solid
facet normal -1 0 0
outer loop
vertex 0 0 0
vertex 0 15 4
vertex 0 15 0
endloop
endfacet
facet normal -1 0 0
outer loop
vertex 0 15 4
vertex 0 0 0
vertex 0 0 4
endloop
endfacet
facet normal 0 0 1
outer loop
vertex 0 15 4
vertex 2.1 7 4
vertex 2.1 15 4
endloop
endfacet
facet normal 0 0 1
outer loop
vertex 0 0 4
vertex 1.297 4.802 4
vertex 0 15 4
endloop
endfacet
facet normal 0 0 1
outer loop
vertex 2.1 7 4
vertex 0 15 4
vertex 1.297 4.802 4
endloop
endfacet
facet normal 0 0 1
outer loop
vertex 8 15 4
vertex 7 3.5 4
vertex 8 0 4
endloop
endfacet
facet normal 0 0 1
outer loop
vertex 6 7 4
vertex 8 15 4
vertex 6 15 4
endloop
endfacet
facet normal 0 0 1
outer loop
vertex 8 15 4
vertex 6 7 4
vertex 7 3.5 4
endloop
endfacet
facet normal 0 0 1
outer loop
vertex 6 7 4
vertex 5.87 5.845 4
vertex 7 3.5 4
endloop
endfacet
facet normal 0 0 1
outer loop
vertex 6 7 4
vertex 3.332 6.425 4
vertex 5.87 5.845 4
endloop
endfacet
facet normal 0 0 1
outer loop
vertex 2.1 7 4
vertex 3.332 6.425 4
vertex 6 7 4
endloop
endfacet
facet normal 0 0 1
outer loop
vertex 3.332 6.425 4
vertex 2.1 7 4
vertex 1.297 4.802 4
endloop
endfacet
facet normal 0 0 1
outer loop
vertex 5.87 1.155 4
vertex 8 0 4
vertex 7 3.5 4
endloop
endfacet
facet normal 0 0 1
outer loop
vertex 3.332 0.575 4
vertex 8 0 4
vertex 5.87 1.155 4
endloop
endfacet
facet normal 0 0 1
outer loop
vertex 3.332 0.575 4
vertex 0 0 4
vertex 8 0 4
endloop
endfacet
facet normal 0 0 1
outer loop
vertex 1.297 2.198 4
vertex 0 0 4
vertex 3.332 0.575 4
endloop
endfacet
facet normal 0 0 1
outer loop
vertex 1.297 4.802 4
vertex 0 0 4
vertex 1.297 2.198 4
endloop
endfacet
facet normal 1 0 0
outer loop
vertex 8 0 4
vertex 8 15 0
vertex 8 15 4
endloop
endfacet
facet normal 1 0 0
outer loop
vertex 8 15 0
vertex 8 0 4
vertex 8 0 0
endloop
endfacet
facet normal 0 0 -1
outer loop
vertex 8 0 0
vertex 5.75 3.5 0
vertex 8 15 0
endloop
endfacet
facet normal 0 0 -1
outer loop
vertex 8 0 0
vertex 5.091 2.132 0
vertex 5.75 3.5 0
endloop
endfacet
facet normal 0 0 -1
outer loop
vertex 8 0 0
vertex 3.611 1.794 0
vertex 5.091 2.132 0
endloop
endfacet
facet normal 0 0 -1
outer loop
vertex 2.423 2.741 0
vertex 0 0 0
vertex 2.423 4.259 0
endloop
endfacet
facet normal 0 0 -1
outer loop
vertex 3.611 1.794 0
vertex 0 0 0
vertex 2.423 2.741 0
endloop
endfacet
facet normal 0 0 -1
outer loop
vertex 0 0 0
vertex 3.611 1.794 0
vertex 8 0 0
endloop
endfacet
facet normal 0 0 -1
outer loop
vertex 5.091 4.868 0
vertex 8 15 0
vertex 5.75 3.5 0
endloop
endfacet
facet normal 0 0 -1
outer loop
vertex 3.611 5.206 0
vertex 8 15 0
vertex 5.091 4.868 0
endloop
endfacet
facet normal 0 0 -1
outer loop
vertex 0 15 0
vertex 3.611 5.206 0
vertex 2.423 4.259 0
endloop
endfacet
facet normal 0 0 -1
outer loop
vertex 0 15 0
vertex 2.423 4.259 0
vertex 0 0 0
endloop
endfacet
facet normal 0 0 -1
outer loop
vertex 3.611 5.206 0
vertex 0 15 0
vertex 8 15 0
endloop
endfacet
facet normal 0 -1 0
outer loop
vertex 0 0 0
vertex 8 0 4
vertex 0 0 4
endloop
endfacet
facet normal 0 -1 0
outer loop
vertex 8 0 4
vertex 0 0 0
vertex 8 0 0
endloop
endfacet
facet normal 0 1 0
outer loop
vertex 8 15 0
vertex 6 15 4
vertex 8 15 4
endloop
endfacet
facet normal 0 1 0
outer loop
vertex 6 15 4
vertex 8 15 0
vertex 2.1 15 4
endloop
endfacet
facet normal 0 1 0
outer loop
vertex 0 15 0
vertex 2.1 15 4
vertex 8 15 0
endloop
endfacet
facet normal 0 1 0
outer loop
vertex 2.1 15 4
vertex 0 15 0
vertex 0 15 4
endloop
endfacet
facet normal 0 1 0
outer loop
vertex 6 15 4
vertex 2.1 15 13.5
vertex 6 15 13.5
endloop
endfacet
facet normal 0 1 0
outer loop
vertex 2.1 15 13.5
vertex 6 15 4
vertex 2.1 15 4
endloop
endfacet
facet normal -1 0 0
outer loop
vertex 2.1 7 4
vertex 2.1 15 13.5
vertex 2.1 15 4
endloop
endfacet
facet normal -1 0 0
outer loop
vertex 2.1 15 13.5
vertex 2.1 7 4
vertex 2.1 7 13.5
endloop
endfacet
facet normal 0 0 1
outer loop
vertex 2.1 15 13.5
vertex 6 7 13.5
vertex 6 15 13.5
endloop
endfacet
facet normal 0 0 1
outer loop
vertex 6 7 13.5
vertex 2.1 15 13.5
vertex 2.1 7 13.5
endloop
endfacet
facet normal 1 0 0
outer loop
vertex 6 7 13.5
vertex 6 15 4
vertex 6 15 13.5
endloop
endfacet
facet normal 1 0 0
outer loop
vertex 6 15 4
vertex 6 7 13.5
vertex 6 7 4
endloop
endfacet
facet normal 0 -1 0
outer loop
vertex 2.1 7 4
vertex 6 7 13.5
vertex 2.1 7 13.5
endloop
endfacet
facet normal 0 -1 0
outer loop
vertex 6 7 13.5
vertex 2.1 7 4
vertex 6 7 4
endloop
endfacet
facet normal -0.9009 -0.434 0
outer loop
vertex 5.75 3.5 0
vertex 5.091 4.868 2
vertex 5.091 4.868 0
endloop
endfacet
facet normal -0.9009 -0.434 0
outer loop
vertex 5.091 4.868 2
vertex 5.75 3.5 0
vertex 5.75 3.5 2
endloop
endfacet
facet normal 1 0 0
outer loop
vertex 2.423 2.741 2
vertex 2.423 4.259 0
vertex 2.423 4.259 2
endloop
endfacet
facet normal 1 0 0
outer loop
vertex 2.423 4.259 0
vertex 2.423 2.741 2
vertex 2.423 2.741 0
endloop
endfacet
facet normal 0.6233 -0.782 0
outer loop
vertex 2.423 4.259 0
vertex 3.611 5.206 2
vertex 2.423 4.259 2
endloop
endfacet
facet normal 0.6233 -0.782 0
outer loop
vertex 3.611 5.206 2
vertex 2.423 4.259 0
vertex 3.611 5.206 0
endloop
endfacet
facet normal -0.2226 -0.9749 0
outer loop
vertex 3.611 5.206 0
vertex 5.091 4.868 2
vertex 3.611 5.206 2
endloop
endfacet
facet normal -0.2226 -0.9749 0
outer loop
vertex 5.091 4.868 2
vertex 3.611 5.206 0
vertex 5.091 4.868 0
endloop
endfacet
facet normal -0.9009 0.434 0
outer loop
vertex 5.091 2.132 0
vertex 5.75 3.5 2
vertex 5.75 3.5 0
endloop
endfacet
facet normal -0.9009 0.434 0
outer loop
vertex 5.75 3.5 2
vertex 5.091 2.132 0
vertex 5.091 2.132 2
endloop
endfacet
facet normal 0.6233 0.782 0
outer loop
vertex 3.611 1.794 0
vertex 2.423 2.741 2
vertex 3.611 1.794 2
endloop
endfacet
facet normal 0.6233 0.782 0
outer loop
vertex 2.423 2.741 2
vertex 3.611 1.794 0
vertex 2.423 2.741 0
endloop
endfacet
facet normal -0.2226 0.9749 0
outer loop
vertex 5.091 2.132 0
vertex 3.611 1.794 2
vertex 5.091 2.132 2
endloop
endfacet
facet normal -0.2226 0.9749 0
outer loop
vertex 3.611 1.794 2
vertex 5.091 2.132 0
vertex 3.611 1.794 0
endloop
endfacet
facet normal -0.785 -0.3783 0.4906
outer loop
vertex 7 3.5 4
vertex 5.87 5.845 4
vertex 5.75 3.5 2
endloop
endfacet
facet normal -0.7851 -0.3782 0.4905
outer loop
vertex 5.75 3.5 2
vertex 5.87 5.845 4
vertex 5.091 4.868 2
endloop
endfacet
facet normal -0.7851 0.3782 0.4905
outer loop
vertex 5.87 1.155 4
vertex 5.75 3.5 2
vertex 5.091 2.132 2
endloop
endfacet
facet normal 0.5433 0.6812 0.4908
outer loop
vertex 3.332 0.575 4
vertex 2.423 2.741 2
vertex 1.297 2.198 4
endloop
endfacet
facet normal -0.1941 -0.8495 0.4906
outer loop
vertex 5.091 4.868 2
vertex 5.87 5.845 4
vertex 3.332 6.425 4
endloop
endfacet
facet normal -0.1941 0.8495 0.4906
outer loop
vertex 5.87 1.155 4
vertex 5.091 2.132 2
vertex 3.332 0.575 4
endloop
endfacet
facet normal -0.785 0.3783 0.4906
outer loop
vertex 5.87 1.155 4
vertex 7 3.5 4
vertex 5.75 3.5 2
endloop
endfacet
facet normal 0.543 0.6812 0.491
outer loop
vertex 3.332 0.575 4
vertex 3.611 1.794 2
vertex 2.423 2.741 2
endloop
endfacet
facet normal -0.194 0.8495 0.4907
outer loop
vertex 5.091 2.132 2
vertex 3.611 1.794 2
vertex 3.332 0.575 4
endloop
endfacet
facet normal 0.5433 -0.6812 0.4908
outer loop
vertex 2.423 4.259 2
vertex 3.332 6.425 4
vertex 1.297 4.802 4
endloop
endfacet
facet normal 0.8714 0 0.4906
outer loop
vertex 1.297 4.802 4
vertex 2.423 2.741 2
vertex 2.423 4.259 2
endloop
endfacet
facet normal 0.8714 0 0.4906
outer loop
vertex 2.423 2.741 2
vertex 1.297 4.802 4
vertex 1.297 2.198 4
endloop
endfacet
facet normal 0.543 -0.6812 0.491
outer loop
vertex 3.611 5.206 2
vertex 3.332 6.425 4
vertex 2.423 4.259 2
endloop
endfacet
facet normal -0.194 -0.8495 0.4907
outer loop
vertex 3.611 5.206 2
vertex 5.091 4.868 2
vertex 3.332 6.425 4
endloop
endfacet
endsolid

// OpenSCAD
baseW = 8;
baseH = 4;
baseL = 7;
indentW = 5.9;
riserW = 3.9;
totalH = 13.5;
totalL = 15;
holeD = 3.5;
chamferH = 2;
chamferD = 6;

module hole() {
    union(){
        cylinder(r=holeD/2,h=baseH,$fn=2*holeD);
        translate([0,0,baseH-chamferH]){
            cylinder(r1=holeD/2,r2=chamferD/2,h=chamferH,$fn=2*holeD);
        }
    }
}

module stopper() {
    union(){
        cube([baseW,totalL,baseH]);
        translate([baseW-indentW,baseL,0]){
            cube([riserW,totalL-baseL,totalH]);
        }
    }
}


//difference(){
  //  sleeve();
    //translate([-.7,0,1.9]){
      //  negative_mold();
//    }
//}
difference(){
    stopper();
    translate([baseW/2,baseL/2,0]){
        hole();
    }
}
echo(version=version());
